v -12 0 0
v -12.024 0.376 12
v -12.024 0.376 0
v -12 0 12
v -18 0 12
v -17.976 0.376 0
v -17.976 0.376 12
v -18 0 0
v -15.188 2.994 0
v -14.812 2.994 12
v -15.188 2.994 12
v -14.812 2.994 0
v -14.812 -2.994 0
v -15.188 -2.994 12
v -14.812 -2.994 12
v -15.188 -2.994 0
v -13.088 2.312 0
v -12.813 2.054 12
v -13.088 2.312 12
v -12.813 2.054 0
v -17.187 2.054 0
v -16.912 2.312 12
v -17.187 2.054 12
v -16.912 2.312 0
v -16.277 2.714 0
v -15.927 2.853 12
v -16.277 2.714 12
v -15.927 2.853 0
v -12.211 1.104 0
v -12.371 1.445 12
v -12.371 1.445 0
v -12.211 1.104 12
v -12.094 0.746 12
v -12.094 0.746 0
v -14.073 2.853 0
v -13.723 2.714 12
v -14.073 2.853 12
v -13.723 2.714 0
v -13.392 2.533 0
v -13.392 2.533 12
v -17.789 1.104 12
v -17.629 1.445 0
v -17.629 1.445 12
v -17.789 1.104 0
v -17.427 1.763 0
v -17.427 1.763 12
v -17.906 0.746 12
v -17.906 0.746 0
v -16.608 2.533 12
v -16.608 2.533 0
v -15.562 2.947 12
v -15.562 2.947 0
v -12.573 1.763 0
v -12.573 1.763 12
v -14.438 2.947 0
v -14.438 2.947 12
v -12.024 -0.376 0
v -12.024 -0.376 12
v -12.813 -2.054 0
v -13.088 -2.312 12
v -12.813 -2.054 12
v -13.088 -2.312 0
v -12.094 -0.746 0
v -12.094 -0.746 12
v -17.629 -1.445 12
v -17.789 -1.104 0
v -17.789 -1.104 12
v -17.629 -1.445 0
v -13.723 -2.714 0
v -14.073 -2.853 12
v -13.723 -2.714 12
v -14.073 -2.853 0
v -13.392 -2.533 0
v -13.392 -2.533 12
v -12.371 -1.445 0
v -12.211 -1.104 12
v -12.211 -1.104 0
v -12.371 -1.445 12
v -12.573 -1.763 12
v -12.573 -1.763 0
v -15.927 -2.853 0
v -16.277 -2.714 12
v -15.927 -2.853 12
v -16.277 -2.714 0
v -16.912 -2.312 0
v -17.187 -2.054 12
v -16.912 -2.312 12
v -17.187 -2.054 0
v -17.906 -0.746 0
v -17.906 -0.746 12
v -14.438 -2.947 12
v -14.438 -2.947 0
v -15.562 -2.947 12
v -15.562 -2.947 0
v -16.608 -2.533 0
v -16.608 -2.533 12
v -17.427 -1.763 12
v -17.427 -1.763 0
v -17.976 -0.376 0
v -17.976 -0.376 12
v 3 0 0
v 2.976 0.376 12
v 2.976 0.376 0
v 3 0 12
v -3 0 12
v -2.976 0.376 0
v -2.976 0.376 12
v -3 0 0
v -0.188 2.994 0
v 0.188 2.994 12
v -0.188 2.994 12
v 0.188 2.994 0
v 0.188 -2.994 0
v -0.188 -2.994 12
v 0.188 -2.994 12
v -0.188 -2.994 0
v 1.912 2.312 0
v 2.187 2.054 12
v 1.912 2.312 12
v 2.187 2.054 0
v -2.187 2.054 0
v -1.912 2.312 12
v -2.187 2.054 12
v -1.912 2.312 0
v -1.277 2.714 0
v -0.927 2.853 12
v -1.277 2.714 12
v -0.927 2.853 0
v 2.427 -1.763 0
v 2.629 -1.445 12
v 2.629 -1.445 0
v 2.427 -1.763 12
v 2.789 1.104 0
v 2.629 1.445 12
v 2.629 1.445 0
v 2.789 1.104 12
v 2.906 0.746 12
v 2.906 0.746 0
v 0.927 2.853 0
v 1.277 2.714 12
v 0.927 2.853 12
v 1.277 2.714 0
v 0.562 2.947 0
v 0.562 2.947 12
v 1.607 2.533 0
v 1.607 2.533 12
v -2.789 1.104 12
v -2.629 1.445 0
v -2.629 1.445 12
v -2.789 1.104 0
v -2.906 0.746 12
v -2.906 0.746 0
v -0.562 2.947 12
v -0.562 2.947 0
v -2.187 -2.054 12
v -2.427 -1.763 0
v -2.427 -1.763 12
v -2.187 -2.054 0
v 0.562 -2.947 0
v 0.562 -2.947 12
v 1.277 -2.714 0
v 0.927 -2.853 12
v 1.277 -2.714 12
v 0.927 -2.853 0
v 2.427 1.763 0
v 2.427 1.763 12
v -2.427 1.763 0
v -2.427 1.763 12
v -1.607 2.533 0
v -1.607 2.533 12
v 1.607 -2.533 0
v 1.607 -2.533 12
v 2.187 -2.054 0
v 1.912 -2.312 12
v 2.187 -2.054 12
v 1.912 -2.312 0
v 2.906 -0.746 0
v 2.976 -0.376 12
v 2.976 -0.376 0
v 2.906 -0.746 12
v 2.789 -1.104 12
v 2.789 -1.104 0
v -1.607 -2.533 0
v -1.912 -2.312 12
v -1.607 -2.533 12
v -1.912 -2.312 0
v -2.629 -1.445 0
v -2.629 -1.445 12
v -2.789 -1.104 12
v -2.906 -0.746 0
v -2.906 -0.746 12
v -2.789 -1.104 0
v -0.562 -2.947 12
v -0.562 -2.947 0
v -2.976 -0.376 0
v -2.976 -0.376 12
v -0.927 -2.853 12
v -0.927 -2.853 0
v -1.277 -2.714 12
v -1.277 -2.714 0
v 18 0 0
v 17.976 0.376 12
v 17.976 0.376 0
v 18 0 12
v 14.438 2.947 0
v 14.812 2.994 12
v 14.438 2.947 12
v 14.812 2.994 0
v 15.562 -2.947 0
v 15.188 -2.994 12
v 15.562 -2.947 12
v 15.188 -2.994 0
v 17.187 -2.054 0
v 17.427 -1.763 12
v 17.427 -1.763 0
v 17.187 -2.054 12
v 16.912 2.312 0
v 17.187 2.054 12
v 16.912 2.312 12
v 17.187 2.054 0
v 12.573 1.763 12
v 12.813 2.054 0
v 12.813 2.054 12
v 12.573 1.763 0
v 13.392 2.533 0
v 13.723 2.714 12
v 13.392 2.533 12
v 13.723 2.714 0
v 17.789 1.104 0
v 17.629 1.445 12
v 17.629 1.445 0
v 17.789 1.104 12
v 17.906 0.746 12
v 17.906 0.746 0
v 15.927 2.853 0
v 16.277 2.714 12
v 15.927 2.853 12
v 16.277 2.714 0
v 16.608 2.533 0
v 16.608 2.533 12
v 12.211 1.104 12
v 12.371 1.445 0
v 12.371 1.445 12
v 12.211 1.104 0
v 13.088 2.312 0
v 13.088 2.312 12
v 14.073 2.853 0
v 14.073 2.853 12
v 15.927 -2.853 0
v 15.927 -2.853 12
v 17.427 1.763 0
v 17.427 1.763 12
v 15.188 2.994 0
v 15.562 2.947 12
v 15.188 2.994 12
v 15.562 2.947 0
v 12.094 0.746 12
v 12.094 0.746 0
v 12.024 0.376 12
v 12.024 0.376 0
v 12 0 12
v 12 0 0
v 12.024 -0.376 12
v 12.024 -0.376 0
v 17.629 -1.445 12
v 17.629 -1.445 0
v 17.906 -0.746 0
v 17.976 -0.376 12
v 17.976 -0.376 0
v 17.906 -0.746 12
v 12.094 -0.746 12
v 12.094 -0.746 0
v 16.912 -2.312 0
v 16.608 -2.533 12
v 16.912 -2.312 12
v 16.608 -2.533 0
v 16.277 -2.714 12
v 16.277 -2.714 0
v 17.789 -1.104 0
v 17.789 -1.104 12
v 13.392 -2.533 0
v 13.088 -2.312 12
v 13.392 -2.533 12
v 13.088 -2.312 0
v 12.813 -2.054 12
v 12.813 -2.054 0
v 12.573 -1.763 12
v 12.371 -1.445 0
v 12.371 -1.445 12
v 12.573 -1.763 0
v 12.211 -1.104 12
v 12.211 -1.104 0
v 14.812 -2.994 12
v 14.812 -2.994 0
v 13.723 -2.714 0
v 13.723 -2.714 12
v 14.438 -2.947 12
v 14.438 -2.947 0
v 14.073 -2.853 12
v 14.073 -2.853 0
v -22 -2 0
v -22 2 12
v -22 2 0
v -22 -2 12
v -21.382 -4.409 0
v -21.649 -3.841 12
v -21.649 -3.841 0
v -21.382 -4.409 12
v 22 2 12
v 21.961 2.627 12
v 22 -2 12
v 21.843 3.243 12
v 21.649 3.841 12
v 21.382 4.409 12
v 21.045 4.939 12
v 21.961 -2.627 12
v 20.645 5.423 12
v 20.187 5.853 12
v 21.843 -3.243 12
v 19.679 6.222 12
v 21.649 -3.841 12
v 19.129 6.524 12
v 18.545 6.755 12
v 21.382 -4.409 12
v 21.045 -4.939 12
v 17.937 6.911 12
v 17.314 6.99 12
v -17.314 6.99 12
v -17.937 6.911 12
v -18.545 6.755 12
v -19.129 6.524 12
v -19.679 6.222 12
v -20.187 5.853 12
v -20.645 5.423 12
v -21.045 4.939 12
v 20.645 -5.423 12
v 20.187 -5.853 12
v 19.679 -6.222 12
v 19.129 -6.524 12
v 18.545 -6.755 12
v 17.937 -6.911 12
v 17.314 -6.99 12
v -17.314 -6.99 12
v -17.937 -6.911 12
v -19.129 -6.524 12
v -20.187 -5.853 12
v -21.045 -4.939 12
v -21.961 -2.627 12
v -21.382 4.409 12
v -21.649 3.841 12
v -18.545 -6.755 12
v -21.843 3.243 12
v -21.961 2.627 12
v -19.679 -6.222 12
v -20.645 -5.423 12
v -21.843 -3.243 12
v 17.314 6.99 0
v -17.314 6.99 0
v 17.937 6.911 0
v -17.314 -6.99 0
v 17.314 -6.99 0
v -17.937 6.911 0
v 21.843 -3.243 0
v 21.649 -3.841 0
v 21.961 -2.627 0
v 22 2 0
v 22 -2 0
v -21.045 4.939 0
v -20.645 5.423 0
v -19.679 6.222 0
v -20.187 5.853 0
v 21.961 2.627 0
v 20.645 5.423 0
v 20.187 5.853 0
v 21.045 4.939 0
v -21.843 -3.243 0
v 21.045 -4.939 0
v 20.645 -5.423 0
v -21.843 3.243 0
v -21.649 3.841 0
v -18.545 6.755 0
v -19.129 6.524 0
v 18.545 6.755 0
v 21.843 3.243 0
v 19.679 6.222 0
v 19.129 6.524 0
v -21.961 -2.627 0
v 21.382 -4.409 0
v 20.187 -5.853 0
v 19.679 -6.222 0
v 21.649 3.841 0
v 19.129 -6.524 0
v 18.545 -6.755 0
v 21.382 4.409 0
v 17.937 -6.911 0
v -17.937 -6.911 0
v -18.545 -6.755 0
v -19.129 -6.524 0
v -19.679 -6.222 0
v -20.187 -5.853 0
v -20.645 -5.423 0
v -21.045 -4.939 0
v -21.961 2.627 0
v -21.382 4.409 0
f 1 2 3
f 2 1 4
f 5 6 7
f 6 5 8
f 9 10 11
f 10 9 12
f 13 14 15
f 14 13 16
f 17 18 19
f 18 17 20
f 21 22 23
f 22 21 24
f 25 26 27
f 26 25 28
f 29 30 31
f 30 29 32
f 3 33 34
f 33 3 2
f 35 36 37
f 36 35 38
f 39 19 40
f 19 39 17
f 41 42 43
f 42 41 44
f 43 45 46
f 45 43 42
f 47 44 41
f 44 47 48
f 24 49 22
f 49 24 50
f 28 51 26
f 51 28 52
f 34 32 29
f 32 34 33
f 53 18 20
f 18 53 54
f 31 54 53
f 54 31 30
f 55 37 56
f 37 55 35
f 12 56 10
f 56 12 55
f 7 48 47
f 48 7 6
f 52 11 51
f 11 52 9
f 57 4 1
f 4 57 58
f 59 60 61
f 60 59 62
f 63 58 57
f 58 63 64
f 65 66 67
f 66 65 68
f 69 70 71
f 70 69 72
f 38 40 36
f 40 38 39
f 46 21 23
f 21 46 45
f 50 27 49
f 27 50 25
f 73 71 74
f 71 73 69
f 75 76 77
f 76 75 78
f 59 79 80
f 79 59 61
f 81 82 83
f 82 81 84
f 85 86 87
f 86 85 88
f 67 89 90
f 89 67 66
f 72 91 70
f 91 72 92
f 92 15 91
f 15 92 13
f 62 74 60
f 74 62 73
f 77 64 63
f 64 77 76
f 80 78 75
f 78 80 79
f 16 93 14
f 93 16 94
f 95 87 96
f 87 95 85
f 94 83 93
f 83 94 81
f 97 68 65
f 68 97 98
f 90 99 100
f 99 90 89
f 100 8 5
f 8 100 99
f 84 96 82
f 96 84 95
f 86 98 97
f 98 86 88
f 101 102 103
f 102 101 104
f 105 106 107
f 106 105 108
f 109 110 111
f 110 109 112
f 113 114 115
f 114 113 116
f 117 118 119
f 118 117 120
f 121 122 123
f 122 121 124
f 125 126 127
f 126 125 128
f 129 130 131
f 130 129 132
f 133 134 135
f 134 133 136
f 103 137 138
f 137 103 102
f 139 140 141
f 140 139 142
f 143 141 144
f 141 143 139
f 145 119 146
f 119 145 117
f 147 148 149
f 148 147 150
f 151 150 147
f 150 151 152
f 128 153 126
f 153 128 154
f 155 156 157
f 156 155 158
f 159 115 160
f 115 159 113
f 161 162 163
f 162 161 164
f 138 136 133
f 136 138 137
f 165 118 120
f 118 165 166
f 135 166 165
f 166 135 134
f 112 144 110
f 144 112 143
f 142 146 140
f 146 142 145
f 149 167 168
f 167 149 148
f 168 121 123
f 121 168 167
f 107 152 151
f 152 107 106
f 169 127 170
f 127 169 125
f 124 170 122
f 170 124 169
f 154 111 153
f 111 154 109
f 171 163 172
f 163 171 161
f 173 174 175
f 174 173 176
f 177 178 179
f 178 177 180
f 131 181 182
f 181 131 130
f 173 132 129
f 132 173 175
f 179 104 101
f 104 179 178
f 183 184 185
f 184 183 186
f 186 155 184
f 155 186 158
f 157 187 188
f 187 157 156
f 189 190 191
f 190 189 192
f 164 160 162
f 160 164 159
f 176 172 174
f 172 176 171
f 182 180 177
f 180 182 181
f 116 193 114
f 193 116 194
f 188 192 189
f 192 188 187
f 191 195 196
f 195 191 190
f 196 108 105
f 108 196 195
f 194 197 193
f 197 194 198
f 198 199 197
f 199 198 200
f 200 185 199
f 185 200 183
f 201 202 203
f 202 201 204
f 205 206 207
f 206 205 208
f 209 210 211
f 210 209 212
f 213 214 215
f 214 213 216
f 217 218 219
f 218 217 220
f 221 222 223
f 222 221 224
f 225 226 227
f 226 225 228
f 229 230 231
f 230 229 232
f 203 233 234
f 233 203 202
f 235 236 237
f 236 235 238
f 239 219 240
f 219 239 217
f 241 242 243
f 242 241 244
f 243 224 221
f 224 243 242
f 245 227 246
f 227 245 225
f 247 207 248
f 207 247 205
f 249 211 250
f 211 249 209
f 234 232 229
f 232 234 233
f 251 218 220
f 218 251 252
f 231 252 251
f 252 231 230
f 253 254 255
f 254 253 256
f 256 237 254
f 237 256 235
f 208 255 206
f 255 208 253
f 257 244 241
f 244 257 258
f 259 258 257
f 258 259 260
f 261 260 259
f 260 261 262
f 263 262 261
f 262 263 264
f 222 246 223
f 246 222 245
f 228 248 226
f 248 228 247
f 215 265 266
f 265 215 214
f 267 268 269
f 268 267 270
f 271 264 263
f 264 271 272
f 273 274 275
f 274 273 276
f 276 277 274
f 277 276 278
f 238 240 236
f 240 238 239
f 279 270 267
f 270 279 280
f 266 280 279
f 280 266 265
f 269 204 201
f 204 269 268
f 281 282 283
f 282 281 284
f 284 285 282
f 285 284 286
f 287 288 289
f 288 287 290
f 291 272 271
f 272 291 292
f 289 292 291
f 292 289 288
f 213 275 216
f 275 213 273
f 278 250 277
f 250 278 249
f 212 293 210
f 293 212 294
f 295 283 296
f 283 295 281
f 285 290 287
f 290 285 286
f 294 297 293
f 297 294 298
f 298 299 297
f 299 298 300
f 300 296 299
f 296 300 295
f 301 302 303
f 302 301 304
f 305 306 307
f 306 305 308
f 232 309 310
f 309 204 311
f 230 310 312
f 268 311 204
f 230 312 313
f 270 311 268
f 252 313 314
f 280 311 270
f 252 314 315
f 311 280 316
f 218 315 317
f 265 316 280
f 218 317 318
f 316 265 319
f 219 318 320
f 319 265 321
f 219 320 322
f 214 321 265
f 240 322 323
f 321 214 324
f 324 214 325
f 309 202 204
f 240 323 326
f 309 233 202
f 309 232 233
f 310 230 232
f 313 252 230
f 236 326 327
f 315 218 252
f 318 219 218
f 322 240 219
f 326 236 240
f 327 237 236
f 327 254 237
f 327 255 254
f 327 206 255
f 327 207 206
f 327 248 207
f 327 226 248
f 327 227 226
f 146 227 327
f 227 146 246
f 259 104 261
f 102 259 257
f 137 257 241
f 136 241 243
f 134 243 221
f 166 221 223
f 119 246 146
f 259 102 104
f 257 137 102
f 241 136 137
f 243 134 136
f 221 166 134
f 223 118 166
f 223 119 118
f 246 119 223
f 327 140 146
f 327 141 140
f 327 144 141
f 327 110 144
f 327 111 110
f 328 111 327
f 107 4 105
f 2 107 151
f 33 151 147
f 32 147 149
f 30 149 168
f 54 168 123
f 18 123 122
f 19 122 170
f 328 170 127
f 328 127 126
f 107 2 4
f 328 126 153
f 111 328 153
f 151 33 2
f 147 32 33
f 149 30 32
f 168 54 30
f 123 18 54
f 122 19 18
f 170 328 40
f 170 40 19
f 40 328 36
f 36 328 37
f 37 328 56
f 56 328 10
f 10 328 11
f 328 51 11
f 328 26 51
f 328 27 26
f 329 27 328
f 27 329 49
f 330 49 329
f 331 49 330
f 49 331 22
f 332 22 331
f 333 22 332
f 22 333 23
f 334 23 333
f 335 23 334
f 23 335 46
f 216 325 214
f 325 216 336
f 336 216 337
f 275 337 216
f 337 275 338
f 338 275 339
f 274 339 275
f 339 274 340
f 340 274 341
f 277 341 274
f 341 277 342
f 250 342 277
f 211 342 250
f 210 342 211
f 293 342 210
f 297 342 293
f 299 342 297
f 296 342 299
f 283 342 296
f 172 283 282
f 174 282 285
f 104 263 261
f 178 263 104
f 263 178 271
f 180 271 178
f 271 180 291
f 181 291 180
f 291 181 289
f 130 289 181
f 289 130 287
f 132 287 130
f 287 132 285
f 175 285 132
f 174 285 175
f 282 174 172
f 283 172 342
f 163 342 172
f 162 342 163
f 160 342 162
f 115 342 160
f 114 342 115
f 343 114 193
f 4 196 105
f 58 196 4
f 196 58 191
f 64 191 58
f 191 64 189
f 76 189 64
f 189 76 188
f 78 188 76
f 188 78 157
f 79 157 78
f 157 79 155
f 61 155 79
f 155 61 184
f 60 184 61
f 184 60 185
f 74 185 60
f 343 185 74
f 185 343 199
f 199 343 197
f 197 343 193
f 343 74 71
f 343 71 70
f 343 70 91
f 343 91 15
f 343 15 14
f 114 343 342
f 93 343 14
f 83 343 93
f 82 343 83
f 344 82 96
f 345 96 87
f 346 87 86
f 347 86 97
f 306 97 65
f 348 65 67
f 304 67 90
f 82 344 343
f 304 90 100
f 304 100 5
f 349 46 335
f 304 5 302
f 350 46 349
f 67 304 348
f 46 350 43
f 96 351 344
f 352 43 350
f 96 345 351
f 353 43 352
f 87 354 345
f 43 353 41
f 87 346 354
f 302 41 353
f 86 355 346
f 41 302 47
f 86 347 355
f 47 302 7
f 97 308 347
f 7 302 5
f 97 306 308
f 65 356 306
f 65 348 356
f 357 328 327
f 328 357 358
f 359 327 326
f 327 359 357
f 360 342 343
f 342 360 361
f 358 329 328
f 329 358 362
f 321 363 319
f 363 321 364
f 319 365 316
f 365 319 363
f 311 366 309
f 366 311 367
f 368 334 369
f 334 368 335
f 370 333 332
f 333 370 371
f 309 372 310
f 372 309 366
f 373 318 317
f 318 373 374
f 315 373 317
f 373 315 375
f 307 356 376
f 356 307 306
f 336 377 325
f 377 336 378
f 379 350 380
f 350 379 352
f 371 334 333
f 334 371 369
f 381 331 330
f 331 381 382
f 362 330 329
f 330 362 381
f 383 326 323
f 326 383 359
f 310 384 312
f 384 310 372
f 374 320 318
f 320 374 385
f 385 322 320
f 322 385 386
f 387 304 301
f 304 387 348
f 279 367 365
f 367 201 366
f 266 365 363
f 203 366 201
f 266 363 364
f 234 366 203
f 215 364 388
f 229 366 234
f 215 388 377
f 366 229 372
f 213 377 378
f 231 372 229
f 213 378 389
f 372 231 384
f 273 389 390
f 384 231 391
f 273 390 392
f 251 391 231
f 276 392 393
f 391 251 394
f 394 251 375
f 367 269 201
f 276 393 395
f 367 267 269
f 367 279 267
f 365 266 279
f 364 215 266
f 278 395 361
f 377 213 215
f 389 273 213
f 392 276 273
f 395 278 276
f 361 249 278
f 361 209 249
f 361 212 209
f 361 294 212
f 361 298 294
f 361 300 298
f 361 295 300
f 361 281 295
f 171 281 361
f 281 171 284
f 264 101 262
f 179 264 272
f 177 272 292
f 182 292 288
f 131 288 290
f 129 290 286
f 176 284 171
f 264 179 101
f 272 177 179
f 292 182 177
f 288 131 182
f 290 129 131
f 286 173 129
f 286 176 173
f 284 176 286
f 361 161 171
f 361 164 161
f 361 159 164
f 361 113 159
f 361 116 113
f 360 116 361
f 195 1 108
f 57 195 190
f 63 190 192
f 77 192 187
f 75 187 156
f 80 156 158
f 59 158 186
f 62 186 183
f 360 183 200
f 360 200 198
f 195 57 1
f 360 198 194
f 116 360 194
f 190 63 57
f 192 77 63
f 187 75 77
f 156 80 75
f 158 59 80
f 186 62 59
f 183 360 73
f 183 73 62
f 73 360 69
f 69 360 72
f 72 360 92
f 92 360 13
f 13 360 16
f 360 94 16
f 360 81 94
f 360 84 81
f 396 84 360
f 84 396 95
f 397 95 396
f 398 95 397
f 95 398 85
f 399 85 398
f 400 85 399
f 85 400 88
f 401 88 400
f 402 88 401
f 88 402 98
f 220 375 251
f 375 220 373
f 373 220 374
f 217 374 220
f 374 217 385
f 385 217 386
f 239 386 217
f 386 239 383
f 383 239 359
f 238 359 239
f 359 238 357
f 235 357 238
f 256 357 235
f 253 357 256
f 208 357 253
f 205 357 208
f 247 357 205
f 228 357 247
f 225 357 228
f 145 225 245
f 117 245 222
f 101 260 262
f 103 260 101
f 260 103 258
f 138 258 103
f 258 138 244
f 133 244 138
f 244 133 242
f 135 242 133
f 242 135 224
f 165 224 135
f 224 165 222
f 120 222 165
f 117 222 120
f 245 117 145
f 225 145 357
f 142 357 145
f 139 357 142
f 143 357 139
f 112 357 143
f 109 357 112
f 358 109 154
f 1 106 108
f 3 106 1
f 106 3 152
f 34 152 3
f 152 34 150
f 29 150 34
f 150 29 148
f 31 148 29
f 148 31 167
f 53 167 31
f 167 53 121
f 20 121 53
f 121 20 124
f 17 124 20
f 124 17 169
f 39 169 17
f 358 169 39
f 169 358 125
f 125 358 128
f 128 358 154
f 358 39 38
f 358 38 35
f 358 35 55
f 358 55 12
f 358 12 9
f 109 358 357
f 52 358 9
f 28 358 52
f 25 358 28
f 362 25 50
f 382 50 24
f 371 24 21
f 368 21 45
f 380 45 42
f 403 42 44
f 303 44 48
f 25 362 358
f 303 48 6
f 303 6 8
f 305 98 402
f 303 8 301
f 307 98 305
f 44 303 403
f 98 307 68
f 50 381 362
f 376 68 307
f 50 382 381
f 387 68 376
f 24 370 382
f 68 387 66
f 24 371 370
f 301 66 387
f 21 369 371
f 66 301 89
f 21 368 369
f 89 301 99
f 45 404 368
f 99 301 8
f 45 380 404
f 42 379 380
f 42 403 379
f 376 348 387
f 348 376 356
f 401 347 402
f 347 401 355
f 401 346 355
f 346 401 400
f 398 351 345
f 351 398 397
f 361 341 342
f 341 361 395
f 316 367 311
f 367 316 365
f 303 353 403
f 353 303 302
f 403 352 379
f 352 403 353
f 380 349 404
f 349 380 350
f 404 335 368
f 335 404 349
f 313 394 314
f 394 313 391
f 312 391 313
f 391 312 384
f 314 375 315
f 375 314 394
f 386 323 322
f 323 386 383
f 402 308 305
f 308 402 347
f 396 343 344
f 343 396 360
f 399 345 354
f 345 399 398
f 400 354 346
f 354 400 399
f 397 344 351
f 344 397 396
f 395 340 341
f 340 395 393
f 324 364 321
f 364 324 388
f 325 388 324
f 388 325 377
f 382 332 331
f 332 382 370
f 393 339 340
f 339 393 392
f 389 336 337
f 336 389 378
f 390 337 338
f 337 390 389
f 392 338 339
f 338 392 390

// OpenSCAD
$fn = 50;


difference() {
	union() {
		hull() {
			translate(v = [-17.0000000000, 2.0000000000, 0]) {
				cylinder(h = 12, r = 5);
			}
			translate(v = [17.0000000000, 2.0000000000, 0]) {
				cylinder(h = 12, r = 5);
			}
			translate(v = [-17.0000000000, -2.0000000000, 0]) {
				cylinder(h = 12, r = 5);
			}
			translate(v = [17.0000000000, -2.0000000000, 0]) {
				cylinder(h = 12, r = 5);
			}
		}
	}
	union() {
		translate(v = [-15.0000000000, 0.0000000000, 0]) {
			translate(v = [0, 0, -100]) {
				cylinder(h = 200, r = 3.0000000000);
			}
		}
		translate(v = [0, 0, -100]) {
			cylinder(h = 200, r = 3.0000000000);
		}
		translate(v = [15.0000000000, 0.0000000000, 0]) {
			translate(v = [0, 0, -100]) {
				cylinder(h = 200, r = 3.0000000000);
			}
		}
	}
}
